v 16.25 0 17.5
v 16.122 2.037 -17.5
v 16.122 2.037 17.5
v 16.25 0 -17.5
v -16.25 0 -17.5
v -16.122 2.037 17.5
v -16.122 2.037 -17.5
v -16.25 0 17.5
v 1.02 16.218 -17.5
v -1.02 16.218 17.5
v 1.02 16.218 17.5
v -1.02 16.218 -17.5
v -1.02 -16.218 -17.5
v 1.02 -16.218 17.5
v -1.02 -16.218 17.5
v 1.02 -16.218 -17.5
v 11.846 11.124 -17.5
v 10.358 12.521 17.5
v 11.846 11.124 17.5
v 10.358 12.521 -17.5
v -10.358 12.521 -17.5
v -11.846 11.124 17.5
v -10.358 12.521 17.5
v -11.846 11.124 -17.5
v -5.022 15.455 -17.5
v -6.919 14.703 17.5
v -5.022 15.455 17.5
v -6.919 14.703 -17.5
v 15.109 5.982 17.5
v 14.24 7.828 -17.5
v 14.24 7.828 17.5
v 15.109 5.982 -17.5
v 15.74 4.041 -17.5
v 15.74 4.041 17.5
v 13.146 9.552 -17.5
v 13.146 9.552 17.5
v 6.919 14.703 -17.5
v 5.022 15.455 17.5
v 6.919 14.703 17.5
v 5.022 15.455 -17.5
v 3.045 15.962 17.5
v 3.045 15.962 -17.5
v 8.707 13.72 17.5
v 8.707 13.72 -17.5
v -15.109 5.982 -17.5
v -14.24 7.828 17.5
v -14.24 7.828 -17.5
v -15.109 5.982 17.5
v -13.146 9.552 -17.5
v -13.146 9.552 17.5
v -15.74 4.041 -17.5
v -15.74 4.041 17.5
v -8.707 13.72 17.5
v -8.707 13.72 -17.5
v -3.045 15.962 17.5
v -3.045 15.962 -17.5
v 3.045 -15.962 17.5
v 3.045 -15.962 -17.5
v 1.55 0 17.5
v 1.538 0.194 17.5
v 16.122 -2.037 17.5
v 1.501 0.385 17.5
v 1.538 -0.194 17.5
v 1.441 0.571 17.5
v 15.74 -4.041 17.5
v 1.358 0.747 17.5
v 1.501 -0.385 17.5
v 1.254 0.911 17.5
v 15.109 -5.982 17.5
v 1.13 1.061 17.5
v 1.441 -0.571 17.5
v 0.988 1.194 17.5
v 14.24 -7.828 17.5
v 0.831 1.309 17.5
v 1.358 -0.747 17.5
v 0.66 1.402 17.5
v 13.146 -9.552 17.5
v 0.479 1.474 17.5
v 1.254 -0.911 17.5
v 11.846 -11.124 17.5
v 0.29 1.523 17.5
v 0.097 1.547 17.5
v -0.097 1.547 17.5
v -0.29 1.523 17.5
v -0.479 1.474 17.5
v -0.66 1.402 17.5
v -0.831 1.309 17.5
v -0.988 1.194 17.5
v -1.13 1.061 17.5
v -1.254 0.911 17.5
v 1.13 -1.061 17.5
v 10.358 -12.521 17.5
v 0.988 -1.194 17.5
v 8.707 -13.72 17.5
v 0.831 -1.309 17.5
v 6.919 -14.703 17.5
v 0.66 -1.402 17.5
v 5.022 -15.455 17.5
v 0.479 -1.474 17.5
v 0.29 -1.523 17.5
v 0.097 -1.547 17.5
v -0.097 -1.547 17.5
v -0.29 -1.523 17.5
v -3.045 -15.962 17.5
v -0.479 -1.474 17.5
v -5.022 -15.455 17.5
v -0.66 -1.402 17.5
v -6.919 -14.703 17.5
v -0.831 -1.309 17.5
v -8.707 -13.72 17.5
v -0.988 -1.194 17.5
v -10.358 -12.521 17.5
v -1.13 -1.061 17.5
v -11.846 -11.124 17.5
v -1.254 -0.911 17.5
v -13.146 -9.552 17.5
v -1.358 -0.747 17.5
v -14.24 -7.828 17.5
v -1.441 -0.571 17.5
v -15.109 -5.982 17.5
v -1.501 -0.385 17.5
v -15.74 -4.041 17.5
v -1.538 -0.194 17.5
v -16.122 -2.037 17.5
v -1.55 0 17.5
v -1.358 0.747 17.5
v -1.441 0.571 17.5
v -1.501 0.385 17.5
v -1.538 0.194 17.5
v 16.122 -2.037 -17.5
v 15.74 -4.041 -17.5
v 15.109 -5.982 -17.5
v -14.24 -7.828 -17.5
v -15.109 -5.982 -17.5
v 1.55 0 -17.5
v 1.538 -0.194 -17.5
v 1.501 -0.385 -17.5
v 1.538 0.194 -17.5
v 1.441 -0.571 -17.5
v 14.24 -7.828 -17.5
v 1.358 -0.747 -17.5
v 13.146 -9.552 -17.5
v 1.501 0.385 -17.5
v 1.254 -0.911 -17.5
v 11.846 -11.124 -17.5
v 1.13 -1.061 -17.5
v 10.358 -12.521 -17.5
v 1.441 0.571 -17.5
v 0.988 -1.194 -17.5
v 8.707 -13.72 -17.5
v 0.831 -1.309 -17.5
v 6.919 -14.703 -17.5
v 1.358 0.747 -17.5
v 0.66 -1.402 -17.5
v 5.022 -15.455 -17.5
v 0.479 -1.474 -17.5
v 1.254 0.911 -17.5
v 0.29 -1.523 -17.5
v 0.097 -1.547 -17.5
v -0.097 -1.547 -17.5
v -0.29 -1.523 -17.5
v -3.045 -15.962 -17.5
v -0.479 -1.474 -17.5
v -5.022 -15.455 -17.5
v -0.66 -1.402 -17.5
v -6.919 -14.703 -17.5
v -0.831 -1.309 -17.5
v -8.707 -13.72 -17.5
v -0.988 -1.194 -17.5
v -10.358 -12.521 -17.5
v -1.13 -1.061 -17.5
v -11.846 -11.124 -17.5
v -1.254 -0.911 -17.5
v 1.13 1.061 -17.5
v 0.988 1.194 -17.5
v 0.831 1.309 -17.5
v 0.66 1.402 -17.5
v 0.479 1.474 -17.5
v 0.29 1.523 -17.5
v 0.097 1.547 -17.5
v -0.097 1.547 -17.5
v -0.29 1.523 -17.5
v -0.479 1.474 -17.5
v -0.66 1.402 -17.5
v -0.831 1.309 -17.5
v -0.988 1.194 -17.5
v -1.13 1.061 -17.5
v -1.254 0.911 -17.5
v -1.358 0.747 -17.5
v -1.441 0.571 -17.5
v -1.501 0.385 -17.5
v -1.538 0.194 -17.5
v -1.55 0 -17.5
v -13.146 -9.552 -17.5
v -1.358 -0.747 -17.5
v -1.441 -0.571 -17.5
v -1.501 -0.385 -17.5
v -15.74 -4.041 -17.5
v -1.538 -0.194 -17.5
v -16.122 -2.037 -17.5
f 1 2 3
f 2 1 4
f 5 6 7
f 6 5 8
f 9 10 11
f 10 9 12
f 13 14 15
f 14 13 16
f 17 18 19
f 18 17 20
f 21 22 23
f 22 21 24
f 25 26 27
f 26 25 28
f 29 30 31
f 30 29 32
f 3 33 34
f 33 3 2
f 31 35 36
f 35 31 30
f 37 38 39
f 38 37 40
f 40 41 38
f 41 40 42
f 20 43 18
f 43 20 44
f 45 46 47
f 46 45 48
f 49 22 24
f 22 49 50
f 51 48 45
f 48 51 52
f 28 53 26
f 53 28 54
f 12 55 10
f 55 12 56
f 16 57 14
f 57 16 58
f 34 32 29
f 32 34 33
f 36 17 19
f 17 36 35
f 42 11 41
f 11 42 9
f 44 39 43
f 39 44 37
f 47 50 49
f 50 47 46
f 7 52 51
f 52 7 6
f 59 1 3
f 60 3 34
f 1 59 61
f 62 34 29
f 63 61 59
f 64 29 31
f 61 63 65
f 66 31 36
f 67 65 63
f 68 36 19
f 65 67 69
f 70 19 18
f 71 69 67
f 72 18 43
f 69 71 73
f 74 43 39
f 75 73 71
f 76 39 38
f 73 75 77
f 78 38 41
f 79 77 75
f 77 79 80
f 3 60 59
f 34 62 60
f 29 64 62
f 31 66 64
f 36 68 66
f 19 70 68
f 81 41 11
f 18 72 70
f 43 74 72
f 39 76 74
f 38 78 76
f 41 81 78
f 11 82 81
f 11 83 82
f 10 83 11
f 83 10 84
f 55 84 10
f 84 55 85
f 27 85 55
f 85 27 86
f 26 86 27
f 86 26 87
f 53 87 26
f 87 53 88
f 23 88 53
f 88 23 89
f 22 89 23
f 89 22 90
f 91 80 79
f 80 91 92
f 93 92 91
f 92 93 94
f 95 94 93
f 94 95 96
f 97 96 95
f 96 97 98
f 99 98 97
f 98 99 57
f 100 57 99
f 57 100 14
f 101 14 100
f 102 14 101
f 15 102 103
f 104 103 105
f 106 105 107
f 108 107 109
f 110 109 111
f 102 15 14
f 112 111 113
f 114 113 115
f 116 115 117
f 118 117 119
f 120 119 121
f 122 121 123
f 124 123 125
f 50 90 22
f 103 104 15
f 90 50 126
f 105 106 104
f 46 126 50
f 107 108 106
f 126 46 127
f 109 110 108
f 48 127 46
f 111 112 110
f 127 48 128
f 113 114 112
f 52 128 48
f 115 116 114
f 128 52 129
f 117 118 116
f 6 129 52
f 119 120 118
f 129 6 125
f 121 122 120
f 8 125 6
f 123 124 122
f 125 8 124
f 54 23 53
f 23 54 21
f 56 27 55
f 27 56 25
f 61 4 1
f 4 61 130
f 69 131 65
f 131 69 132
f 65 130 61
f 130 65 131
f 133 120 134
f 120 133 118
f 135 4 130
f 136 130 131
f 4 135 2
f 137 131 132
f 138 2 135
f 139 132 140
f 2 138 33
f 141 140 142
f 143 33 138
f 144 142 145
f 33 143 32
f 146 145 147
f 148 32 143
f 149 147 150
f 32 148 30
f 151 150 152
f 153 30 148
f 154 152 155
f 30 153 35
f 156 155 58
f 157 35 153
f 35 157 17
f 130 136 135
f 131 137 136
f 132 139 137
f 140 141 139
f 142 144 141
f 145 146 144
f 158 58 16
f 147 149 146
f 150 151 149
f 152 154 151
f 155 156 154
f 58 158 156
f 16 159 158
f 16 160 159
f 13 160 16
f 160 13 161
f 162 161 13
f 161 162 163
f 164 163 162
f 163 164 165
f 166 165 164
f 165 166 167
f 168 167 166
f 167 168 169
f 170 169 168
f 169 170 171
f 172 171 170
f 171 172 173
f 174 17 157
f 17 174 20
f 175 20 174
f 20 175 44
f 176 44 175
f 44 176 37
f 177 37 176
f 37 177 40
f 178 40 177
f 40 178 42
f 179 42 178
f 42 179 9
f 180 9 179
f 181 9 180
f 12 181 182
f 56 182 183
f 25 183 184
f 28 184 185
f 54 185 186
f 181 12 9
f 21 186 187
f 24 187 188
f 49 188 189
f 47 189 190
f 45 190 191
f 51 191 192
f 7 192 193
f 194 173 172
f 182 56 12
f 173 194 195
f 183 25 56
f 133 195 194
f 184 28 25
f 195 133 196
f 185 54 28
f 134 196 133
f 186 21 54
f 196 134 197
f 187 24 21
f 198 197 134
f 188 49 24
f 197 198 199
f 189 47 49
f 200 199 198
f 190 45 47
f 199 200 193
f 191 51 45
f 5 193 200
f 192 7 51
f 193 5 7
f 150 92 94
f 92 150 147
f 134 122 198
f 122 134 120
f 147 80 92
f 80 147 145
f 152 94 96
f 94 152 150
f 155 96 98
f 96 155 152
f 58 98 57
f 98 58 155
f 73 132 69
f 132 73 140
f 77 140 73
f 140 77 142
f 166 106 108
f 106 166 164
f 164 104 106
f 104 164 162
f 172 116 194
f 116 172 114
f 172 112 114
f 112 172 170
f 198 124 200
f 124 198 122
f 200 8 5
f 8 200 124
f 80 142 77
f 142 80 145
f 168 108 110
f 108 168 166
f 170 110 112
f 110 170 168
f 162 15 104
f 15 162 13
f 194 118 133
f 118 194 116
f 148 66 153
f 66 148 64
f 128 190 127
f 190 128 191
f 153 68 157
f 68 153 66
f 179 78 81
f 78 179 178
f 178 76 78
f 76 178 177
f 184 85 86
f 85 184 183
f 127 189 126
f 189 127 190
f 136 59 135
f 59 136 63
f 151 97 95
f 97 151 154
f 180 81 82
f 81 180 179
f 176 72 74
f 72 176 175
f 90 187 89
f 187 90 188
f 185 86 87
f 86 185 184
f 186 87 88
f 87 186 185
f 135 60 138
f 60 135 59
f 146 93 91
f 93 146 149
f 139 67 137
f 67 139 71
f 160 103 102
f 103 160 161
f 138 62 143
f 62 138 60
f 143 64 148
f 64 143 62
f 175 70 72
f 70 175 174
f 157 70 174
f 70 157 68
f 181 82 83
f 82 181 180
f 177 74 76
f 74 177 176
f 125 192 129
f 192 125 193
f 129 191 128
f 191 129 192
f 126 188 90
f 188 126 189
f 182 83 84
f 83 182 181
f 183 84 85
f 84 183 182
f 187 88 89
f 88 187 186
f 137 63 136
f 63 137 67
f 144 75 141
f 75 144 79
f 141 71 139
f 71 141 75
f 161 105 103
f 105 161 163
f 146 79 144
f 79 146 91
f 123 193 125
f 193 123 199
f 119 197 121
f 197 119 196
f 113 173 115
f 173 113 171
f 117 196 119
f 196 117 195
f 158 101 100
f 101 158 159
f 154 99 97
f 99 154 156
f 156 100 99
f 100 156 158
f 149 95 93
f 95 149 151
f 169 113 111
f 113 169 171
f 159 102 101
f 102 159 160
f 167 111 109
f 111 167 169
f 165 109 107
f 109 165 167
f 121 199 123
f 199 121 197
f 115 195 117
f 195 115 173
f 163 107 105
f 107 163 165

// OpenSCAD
$fn = 50;


difference() {
	union() {
		translate(v = [0, 0, -17.5000000000]) {
			cylinder(h = 35, r = 16.2500000000);
		}
	}
	union() {
		translate(v = [0, 0, -100.0000000000]) {
			cylinder(h = 200, r = 1.5500000000);
		}
	}
}
